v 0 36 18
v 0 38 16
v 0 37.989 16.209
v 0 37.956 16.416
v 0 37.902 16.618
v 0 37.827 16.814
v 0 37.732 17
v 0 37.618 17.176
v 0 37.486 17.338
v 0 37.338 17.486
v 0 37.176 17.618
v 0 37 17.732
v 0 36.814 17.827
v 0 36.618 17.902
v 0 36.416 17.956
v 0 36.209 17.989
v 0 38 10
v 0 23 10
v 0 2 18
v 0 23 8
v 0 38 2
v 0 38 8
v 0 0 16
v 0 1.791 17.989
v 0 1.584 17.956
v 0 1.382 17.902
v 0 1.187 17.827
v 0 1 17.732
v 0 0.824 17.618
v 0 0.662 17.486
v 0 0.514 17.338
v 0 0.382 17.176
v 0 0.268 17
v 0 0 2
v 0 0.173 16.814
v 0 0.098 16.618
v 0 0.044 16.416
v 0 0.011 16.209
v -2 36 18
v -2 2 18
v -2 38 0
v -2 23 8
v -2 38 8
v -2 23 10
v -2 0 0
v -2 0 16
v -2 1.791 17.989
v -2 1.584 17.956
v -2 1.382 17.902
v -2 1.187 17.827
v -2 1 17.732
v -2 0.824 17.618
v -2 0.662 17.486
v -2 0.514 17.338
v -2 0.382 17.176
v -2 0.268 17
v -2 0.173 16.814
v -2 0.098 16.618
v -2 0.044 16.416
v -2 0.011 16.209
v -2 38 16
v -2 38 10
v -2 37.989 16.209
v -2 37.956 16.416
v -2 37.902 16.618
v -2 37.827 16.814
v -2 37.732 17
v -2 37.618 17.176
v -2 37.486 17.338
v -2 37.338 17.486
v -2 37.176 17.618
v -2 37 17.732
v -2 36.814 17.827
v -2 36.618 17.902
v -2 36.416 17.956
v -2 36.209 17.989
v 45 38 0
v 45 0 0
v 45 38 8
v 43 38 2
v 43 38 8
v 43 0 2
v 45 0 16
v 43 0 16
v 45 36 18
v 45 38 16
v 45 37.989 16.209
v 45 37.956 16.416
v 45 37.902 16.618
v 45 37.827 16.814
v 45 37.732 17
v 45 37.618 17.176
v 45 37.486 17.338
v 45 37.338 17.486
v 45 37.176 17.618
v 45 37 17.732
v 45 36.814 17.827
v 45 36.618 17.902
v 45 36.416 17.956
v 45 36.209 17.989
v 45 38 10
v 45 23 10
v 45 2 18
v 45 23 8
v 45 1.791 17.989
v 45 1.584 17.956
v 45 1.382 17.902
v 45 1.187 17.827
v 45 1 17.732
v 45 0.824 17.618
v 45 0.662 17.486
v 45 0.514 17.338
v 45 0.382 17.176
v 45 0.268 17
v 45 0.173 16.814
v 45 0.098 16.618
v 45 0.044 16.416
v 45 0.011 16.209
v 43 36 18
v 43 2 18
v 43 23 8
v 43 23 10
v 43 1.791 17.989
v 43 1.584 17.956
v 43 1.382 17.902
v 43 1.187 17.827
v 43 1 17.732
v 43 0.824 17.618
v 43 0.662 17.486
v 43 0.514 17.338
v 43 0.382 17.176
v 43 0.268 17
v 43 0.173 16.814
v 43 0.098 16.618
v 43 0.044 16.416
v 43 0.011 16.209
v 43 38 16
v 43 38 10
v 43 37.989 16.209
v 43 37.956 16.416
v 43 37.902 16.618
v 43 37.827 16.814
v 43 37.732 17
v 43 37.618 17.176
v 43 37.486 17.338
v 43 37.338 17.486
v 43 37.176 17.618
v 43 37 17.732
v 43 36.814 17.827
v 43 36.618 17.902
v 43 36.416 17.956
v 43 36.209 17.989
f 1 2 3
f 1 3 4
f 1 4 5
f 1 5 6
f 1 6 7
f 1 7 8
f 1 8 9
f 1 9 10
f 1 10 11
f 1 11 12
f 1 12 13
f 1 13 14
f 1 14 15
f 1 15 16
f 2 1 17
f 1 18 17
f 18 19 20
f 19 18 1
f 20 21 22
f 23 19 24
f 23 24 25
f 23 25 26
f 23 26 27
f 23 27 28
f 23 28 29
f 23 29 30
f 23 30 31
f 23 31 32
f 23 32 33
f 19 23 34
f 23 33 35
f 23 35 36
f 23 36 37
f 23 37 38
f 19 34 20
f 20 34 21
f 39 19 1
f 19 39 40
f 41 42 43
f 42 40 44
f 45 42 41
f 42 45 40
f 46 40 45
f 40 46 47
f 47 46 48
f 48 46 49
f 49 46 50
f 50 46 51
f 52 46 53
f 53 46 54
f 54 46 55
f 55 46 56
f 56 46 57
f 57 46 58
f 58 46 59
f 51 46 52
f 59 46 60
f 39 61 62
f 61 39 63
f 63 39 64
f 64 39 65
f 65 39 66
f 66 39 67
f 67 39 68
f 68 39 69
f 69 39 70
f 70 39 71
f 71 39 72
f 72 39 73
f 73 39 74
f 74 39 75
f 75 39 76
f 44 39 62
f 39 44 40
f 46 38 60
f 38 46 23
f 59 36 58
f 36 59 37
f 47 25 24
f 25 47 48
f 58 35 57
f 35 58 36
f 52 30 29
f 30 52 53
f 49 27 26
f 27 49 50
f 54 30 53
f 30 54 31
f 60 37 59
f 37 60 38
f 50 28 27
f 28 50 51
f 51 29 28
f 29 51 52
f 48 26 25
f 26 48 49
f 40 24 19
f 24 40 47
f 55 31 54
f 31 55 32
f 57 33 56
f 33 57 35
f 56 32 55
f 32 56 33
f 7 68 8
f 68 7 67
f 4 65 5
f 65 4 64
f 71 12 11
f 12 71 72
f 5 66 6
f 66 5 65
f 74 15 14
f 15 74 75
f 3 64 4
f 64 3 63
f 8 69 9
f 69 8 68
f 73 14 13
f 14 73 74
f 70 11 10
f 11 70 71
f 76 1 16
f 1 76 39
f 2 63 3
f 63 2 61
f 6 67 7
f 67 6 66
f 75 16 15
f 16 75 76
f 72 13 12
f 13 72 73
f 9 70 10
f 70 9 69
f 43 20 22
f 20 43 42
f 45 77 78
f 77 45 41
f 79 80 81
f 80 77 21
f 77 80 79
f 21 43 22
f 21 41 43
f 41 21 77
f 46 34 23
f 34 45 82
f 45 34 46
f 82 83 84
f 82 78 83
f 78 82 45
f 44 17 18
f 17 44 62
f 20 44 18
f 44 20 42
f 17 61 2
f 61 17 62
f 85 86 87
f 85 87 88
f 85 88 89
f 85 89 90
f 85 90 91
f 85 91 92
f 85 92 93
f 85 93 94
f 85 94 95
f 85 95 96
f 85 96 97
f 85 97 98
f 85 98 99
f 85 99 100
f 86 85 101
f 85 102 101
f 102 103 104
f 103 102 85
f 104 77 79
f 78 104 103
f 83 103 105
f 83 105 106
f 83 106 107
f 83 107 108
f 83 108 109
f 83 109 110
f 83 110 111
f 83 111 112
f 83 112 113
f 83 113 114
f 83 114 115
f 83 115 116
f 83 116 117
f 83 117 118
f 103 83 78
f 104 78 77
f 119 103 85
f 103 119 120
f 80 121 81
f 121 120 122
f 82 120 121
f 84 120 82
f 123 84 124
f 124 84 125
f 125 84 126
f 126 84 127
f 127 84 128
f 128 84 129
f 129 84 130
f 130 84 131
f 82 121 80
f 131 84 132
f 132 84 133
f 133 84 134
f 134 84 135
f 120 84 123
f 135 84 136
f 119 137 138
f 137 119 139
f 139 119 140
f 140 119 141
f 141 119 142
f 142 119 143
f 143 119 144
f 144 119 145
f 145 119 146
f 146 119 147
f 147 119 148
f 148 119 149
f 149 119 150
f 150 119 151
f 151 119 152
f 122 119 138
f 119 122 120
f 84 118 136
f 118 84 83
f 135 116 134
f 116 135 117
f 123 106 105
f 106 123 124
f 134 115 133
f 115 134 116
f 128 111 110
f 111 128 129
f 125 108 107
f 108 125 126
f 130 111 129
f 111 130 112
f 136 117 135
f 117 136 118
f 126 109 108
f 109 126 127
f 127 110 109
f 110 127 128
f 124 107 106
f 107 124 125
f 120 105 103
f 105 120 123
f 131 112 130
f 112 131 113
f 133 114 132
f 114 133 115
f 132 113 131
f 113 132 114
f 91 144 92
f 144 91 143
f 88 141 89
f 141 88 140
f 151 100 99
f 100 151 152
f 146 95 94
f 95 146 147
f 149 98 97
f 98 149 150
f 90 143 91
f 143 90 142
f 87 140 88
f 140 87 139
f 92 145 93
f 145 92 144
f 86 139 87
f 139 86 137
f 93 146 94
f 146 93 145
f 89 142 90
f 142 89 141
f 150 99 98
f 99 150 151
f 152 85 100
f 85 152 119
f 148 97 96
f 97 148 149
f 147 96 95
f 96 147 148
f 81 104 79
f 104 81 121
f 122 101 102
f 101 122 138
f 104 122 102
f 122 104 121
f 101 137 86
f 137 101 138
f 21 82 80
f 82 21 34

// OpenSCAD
module roundedCorners(start)
{
	translate([start, 2, 16])
		cube([2, 34, 2], false);
	
	translate([start, 2, 16])
		rotate([0,90,0])
			cylinder(2, 2, 2, $fn=60, false);
	
	translate([start, 36, 16])
		rotate([0,90,0])
			cylinder(2, 2, 2, $fn=60, false);
}

module side(start)
{
	translate([start, 0, 0])
		cube([2, 38, 8], false);
	translate([start, 0, 8])
		cube([2, 23, 2], false);
	translate([start, 0, 10])
		cube([2, 38, 6], false);
	
	// Rounded 3D corners on the rigth	
	roundedCorners(start);
}

union()
{
	cube([43, 38, 2], false);
	
	// Left side
	side(-2);
	
	// Right side
	side(43);	
}
